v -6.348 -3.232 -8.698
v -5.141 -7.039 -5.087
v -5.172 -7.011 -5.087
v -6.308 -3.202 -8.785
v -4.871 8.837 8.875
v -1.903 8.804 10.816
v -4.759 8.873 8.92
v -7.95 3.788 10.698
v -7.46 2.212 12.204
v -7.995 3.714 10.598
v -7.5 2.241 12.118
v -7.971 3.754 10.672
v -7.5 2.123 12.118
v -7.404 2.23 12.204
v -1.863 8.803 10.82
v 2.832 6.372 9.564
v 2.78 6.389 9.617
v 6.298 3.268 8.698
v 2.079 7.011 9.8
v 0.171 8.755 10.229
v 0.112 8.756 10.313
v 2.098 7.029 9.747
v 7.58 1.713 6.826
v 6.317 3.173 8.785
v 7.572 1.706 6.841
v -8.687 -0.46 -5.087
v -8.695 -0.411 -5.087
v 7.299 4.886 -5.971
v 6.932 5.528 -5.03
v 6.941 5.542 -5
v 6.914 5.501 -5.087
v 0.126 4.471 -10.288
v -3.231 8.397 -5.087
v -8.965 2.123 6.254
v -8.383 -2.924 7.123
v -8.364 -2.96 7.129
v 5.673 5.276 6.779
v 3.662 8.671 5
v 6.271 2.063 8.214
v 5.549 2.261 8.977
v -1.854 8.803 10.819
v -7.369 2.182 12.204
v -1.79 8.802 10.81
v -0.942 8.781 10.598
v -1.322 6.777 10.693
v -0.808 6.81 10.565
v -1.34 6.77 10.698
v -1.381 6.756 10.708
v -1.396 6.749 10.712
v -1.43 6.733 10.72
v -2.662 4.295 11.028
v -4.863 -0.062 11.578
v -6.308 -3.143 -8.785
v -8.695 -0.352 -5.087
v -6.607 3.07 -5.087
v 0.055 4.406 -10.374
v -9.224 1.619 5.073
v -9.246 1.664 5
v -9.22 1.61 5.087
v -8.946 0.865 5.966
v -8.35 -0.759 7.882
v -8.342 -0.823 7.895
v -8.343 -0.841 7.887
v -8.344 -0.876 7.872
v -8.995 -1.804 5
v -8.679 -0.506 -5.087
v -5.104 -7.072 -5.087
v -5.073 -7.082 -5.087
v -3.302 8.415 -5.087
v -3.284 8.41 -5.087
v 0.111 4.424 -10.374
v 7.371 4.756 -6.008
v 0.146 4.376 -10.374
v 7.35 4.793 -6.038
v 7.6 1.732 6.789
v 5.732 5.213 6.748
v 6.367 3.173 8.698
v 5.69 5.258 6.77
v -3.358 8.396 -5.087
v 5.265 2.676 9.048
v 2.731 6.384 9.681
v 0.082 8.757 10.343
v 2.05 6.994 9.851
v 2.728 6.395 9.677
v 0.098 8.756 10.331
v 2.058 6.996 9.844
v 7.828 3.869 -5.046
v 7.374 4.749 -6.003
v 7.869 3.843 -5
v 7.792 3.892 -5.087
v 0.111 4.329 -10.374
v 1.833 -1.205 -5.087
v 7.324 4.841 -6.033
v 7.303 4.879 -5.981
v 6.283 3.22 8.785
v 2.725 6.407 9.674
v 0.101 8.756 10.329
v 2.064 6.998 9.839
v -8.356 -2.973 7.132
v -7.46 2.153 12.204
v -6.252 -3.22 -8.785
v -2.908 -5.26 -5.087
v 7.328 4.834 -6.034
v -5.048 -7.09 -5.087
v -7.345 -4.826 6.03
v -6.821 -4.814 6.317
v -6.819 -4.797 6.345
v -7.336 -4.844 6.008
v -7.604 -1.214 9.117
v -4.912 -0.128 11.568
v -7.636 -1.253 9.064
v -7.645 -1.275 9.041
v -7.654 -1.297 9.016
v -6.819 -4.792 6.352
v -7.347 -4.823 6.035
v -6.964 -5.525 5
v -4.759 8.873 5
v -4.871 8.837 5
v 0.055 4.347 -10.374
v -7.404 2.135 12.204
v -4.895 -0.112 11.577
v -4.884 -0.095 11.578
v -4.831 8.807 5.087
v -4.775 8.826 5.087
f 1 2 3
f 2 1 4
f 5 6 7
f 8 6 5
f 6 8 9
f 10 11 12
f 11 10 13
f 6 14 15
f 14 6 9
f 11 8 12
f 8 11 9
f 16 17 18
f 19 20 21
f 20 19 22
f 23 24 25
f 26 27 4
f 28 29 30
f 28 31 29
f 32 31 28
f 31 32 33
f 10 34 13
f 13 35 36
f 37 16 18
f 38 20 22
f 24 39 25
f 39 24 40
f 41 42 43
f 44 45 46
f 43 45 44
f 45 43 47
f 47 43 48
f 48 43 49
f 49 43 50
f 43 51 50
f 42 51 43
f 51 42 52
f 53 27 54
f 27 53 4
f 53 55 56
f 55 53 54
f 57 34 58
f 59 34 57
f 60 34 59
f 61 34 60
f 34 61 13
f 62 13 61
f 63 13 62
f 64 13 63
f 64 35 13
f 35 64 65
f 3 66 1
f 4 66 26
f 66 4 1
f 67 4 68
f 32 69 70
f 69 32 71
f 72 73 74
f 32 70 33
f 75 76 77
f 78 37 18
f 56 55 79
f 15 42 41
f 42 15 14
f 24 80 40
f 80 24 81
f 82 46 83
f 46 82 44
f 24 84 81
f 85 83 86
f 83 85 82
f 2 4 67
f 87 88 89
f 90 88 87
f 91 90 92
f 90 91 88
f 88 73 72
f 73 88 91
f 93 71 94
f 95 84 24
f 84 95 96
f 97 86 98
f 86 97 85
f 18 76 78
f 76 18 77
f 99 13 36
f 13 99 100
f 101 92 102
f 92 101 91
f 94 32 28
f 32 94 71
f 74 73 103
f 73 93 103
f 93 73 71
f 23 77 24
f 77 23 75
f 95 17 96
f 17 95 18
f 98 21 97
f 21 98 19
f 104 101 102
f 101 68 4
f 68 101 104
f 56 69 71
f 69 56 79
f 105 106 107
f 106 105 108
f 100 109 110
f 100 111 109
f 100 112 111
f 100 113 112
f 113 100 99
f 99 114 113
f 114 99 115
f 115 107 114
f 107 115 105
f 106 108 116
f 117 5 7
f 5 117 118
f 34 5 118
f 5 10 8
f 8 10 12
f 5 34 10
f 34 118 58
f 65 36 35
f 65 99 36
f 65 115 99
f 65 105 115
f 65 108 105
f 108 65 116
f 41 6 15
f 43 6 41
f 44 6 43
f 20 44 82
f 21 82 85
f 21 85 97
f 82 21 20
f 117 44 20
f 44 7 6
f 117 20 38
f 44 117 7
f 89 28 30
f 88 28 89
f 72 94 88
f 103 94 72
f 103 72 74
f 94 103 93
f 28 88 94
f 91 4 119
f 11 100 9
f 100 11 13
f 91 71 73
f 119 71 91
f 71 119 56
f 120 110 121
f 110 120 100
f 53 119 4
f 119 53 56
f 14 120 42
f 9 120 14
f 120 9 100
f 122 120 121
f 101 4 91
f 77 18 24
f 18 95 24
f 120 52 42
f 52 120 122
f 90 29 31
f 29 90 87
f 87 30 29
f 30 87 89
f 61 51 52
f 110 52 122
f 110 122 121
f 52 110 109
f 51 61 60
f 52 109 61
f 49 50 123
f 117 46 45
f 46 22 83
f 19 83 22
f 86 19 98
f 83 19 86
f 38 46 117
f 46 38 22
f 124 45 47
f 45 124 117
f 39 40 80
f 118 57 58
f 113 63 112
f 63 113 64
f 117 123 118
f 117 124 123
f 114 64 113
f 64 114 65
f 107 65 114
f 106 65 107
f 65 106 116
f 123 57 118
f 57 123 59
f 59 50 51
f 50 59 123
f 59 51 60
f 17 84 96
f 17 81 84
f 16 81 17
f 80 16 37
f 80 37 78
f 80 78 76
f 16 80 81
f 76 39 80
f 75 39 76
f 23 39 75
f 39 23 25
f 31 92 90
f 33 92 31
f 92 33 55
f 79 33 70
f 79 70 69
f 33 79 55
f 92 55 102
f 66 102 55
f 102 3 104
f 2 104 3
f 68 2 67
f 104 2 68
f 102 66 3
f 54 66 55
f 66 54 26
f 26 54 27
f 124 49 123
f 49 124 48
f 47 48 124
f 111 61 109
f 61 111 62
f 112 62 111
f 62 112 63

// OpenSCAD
// Auto-generated OpenSCAD file

    inner_points = 10*[[-0.5206742858014932, -0.8537545783635307, 0.5000000000005902], [0.5206728937674587, 0.8537570765312255, -0.5000000000005902], [-0.9997117261075887, 0.024039891191902935, -0.5000000000008494], [0.9997103340735543, -0.024037393024208206, 0.5000000000008494], [-0.47903813632434417, 0.877795718641069, 0.4999999999985605], [0.47903674429030957, -0.8777932204733743, -0.4999999999985605], [-0.47903813632352327, 0.8777957186398769, -0.5000000000014396], [0.47903674428948867, -0.8777932204721822, 0.5000000000014396], [0.5206728937666378, 0.8537570765324173, 0.4999999999994098], [-0.5206742858006723, -0.8537545783647226, -0.4999999999994098], [-0.9997117261084095, 0.024039891193094905, 0.49999999999915057], [0.999710334074375, -0.024037393025400176, -0.49999999999915057], [0.013878020474284998, 0.5771846814202832, 1.3164965809270497], [-0.5067955693097805, -0.2765711460276909, 1.3164965809276397], [0.4929154607812014, -0.30060978813634254, 1.3164965809284892]];

    outer_points = 10*[[-0.009559115747354546, -0.4376223667561964, 1.0287834016063993], [0.009559115747354546, 0.4376223667561964, -1.0287834016063993], [-0.4072695443938975, -1.0226427455134965, -0.19578900188162973], [0.4072695443938975, 1.0226427455134965, 0.19578900188162973], [-1.0847562624532703, 0.21822357574934653, -0.1602570499403399], [1.0847562624532703, -0.21822357574934653, 0.1602570499403399], [-0.6267257065821188, -0.3172723939217513, -0.8698006189721327], [0.6267257065821188, 0.3172723939217513, 0.8698006189721327], [-0.448471440123797, 0.9731183364272943, -0.31923983257460653], [0.448471440123797, -0.9731183364272943, 0.31923983257460653], [-0.8653001002650492, -0.4871467758423988, 0.513754567150163], [0.8653001002650492, 0.4871467758423988, -0.513754567150163], [-0.9613947096667688, 0.9235939273410919, 0.5377648654673648], [-0.7419385474785475, 0.21822357574934653, 1.2117764825578676], [-0.10565372514907426, 0.9731183364272943, 1.052793699923601]];

    // Convex hull for inner set (I)
    module inner_hull() {
        hull() {
            for (p = inner_points) {
                translate(p) sphere(r=0.1);
            }
        }
    }

    // Convex hull for outer set (O) minus inner hull (O \ I)
    module outer_minus_inner() {
        difference() {
            hull() {
                for (p = outer_points) {
                    translate(p) sphere(r=0.1);
                }
            }
            inner_hull(); // Subtract inner hull
        }
    }

    // Convex hull for outer set (O) minus all translated inner hulls
    module outer_minus_AllTranslationInner() {
        difference() {
            hull() {
                for (p = outer_points) {
                    translate(p) sphere(r=0.1);
                }
            }
            hull() {
                translate([0,0,50]) inner_hull();
                translate([0,0,-50]) inner_hull();
            }; // Subtract translated inner hulls
        }
    }

    // Difference between outer_minus_inner and outer_minus_AllTranslationInner
    module outer_minus_inner_diff() {
        difference() {
            // Outer minus inner
            difference() {
                hull() {
                    for (p = outer_points) {
                        translate(p) sphere(r=0.1);
                    }
                }
                inner_hull();
            }

            // Subtract Outer minus AllTranslationInner
            difference() {
                hull() {
                    for (p = outer_points) {
                        translate(p) sphere(r=0.1);
                    }
                }
                hull() {
                    translate([0,0,50]) inner_hull();
                    translate([0,0,-50]) inner_hull();
                };
            }
        }
    }

    // Rendering all with colors applied
    color([1, 1, 0, 1]) outer_minus_inner_diff(); // Opaque yellow
    
